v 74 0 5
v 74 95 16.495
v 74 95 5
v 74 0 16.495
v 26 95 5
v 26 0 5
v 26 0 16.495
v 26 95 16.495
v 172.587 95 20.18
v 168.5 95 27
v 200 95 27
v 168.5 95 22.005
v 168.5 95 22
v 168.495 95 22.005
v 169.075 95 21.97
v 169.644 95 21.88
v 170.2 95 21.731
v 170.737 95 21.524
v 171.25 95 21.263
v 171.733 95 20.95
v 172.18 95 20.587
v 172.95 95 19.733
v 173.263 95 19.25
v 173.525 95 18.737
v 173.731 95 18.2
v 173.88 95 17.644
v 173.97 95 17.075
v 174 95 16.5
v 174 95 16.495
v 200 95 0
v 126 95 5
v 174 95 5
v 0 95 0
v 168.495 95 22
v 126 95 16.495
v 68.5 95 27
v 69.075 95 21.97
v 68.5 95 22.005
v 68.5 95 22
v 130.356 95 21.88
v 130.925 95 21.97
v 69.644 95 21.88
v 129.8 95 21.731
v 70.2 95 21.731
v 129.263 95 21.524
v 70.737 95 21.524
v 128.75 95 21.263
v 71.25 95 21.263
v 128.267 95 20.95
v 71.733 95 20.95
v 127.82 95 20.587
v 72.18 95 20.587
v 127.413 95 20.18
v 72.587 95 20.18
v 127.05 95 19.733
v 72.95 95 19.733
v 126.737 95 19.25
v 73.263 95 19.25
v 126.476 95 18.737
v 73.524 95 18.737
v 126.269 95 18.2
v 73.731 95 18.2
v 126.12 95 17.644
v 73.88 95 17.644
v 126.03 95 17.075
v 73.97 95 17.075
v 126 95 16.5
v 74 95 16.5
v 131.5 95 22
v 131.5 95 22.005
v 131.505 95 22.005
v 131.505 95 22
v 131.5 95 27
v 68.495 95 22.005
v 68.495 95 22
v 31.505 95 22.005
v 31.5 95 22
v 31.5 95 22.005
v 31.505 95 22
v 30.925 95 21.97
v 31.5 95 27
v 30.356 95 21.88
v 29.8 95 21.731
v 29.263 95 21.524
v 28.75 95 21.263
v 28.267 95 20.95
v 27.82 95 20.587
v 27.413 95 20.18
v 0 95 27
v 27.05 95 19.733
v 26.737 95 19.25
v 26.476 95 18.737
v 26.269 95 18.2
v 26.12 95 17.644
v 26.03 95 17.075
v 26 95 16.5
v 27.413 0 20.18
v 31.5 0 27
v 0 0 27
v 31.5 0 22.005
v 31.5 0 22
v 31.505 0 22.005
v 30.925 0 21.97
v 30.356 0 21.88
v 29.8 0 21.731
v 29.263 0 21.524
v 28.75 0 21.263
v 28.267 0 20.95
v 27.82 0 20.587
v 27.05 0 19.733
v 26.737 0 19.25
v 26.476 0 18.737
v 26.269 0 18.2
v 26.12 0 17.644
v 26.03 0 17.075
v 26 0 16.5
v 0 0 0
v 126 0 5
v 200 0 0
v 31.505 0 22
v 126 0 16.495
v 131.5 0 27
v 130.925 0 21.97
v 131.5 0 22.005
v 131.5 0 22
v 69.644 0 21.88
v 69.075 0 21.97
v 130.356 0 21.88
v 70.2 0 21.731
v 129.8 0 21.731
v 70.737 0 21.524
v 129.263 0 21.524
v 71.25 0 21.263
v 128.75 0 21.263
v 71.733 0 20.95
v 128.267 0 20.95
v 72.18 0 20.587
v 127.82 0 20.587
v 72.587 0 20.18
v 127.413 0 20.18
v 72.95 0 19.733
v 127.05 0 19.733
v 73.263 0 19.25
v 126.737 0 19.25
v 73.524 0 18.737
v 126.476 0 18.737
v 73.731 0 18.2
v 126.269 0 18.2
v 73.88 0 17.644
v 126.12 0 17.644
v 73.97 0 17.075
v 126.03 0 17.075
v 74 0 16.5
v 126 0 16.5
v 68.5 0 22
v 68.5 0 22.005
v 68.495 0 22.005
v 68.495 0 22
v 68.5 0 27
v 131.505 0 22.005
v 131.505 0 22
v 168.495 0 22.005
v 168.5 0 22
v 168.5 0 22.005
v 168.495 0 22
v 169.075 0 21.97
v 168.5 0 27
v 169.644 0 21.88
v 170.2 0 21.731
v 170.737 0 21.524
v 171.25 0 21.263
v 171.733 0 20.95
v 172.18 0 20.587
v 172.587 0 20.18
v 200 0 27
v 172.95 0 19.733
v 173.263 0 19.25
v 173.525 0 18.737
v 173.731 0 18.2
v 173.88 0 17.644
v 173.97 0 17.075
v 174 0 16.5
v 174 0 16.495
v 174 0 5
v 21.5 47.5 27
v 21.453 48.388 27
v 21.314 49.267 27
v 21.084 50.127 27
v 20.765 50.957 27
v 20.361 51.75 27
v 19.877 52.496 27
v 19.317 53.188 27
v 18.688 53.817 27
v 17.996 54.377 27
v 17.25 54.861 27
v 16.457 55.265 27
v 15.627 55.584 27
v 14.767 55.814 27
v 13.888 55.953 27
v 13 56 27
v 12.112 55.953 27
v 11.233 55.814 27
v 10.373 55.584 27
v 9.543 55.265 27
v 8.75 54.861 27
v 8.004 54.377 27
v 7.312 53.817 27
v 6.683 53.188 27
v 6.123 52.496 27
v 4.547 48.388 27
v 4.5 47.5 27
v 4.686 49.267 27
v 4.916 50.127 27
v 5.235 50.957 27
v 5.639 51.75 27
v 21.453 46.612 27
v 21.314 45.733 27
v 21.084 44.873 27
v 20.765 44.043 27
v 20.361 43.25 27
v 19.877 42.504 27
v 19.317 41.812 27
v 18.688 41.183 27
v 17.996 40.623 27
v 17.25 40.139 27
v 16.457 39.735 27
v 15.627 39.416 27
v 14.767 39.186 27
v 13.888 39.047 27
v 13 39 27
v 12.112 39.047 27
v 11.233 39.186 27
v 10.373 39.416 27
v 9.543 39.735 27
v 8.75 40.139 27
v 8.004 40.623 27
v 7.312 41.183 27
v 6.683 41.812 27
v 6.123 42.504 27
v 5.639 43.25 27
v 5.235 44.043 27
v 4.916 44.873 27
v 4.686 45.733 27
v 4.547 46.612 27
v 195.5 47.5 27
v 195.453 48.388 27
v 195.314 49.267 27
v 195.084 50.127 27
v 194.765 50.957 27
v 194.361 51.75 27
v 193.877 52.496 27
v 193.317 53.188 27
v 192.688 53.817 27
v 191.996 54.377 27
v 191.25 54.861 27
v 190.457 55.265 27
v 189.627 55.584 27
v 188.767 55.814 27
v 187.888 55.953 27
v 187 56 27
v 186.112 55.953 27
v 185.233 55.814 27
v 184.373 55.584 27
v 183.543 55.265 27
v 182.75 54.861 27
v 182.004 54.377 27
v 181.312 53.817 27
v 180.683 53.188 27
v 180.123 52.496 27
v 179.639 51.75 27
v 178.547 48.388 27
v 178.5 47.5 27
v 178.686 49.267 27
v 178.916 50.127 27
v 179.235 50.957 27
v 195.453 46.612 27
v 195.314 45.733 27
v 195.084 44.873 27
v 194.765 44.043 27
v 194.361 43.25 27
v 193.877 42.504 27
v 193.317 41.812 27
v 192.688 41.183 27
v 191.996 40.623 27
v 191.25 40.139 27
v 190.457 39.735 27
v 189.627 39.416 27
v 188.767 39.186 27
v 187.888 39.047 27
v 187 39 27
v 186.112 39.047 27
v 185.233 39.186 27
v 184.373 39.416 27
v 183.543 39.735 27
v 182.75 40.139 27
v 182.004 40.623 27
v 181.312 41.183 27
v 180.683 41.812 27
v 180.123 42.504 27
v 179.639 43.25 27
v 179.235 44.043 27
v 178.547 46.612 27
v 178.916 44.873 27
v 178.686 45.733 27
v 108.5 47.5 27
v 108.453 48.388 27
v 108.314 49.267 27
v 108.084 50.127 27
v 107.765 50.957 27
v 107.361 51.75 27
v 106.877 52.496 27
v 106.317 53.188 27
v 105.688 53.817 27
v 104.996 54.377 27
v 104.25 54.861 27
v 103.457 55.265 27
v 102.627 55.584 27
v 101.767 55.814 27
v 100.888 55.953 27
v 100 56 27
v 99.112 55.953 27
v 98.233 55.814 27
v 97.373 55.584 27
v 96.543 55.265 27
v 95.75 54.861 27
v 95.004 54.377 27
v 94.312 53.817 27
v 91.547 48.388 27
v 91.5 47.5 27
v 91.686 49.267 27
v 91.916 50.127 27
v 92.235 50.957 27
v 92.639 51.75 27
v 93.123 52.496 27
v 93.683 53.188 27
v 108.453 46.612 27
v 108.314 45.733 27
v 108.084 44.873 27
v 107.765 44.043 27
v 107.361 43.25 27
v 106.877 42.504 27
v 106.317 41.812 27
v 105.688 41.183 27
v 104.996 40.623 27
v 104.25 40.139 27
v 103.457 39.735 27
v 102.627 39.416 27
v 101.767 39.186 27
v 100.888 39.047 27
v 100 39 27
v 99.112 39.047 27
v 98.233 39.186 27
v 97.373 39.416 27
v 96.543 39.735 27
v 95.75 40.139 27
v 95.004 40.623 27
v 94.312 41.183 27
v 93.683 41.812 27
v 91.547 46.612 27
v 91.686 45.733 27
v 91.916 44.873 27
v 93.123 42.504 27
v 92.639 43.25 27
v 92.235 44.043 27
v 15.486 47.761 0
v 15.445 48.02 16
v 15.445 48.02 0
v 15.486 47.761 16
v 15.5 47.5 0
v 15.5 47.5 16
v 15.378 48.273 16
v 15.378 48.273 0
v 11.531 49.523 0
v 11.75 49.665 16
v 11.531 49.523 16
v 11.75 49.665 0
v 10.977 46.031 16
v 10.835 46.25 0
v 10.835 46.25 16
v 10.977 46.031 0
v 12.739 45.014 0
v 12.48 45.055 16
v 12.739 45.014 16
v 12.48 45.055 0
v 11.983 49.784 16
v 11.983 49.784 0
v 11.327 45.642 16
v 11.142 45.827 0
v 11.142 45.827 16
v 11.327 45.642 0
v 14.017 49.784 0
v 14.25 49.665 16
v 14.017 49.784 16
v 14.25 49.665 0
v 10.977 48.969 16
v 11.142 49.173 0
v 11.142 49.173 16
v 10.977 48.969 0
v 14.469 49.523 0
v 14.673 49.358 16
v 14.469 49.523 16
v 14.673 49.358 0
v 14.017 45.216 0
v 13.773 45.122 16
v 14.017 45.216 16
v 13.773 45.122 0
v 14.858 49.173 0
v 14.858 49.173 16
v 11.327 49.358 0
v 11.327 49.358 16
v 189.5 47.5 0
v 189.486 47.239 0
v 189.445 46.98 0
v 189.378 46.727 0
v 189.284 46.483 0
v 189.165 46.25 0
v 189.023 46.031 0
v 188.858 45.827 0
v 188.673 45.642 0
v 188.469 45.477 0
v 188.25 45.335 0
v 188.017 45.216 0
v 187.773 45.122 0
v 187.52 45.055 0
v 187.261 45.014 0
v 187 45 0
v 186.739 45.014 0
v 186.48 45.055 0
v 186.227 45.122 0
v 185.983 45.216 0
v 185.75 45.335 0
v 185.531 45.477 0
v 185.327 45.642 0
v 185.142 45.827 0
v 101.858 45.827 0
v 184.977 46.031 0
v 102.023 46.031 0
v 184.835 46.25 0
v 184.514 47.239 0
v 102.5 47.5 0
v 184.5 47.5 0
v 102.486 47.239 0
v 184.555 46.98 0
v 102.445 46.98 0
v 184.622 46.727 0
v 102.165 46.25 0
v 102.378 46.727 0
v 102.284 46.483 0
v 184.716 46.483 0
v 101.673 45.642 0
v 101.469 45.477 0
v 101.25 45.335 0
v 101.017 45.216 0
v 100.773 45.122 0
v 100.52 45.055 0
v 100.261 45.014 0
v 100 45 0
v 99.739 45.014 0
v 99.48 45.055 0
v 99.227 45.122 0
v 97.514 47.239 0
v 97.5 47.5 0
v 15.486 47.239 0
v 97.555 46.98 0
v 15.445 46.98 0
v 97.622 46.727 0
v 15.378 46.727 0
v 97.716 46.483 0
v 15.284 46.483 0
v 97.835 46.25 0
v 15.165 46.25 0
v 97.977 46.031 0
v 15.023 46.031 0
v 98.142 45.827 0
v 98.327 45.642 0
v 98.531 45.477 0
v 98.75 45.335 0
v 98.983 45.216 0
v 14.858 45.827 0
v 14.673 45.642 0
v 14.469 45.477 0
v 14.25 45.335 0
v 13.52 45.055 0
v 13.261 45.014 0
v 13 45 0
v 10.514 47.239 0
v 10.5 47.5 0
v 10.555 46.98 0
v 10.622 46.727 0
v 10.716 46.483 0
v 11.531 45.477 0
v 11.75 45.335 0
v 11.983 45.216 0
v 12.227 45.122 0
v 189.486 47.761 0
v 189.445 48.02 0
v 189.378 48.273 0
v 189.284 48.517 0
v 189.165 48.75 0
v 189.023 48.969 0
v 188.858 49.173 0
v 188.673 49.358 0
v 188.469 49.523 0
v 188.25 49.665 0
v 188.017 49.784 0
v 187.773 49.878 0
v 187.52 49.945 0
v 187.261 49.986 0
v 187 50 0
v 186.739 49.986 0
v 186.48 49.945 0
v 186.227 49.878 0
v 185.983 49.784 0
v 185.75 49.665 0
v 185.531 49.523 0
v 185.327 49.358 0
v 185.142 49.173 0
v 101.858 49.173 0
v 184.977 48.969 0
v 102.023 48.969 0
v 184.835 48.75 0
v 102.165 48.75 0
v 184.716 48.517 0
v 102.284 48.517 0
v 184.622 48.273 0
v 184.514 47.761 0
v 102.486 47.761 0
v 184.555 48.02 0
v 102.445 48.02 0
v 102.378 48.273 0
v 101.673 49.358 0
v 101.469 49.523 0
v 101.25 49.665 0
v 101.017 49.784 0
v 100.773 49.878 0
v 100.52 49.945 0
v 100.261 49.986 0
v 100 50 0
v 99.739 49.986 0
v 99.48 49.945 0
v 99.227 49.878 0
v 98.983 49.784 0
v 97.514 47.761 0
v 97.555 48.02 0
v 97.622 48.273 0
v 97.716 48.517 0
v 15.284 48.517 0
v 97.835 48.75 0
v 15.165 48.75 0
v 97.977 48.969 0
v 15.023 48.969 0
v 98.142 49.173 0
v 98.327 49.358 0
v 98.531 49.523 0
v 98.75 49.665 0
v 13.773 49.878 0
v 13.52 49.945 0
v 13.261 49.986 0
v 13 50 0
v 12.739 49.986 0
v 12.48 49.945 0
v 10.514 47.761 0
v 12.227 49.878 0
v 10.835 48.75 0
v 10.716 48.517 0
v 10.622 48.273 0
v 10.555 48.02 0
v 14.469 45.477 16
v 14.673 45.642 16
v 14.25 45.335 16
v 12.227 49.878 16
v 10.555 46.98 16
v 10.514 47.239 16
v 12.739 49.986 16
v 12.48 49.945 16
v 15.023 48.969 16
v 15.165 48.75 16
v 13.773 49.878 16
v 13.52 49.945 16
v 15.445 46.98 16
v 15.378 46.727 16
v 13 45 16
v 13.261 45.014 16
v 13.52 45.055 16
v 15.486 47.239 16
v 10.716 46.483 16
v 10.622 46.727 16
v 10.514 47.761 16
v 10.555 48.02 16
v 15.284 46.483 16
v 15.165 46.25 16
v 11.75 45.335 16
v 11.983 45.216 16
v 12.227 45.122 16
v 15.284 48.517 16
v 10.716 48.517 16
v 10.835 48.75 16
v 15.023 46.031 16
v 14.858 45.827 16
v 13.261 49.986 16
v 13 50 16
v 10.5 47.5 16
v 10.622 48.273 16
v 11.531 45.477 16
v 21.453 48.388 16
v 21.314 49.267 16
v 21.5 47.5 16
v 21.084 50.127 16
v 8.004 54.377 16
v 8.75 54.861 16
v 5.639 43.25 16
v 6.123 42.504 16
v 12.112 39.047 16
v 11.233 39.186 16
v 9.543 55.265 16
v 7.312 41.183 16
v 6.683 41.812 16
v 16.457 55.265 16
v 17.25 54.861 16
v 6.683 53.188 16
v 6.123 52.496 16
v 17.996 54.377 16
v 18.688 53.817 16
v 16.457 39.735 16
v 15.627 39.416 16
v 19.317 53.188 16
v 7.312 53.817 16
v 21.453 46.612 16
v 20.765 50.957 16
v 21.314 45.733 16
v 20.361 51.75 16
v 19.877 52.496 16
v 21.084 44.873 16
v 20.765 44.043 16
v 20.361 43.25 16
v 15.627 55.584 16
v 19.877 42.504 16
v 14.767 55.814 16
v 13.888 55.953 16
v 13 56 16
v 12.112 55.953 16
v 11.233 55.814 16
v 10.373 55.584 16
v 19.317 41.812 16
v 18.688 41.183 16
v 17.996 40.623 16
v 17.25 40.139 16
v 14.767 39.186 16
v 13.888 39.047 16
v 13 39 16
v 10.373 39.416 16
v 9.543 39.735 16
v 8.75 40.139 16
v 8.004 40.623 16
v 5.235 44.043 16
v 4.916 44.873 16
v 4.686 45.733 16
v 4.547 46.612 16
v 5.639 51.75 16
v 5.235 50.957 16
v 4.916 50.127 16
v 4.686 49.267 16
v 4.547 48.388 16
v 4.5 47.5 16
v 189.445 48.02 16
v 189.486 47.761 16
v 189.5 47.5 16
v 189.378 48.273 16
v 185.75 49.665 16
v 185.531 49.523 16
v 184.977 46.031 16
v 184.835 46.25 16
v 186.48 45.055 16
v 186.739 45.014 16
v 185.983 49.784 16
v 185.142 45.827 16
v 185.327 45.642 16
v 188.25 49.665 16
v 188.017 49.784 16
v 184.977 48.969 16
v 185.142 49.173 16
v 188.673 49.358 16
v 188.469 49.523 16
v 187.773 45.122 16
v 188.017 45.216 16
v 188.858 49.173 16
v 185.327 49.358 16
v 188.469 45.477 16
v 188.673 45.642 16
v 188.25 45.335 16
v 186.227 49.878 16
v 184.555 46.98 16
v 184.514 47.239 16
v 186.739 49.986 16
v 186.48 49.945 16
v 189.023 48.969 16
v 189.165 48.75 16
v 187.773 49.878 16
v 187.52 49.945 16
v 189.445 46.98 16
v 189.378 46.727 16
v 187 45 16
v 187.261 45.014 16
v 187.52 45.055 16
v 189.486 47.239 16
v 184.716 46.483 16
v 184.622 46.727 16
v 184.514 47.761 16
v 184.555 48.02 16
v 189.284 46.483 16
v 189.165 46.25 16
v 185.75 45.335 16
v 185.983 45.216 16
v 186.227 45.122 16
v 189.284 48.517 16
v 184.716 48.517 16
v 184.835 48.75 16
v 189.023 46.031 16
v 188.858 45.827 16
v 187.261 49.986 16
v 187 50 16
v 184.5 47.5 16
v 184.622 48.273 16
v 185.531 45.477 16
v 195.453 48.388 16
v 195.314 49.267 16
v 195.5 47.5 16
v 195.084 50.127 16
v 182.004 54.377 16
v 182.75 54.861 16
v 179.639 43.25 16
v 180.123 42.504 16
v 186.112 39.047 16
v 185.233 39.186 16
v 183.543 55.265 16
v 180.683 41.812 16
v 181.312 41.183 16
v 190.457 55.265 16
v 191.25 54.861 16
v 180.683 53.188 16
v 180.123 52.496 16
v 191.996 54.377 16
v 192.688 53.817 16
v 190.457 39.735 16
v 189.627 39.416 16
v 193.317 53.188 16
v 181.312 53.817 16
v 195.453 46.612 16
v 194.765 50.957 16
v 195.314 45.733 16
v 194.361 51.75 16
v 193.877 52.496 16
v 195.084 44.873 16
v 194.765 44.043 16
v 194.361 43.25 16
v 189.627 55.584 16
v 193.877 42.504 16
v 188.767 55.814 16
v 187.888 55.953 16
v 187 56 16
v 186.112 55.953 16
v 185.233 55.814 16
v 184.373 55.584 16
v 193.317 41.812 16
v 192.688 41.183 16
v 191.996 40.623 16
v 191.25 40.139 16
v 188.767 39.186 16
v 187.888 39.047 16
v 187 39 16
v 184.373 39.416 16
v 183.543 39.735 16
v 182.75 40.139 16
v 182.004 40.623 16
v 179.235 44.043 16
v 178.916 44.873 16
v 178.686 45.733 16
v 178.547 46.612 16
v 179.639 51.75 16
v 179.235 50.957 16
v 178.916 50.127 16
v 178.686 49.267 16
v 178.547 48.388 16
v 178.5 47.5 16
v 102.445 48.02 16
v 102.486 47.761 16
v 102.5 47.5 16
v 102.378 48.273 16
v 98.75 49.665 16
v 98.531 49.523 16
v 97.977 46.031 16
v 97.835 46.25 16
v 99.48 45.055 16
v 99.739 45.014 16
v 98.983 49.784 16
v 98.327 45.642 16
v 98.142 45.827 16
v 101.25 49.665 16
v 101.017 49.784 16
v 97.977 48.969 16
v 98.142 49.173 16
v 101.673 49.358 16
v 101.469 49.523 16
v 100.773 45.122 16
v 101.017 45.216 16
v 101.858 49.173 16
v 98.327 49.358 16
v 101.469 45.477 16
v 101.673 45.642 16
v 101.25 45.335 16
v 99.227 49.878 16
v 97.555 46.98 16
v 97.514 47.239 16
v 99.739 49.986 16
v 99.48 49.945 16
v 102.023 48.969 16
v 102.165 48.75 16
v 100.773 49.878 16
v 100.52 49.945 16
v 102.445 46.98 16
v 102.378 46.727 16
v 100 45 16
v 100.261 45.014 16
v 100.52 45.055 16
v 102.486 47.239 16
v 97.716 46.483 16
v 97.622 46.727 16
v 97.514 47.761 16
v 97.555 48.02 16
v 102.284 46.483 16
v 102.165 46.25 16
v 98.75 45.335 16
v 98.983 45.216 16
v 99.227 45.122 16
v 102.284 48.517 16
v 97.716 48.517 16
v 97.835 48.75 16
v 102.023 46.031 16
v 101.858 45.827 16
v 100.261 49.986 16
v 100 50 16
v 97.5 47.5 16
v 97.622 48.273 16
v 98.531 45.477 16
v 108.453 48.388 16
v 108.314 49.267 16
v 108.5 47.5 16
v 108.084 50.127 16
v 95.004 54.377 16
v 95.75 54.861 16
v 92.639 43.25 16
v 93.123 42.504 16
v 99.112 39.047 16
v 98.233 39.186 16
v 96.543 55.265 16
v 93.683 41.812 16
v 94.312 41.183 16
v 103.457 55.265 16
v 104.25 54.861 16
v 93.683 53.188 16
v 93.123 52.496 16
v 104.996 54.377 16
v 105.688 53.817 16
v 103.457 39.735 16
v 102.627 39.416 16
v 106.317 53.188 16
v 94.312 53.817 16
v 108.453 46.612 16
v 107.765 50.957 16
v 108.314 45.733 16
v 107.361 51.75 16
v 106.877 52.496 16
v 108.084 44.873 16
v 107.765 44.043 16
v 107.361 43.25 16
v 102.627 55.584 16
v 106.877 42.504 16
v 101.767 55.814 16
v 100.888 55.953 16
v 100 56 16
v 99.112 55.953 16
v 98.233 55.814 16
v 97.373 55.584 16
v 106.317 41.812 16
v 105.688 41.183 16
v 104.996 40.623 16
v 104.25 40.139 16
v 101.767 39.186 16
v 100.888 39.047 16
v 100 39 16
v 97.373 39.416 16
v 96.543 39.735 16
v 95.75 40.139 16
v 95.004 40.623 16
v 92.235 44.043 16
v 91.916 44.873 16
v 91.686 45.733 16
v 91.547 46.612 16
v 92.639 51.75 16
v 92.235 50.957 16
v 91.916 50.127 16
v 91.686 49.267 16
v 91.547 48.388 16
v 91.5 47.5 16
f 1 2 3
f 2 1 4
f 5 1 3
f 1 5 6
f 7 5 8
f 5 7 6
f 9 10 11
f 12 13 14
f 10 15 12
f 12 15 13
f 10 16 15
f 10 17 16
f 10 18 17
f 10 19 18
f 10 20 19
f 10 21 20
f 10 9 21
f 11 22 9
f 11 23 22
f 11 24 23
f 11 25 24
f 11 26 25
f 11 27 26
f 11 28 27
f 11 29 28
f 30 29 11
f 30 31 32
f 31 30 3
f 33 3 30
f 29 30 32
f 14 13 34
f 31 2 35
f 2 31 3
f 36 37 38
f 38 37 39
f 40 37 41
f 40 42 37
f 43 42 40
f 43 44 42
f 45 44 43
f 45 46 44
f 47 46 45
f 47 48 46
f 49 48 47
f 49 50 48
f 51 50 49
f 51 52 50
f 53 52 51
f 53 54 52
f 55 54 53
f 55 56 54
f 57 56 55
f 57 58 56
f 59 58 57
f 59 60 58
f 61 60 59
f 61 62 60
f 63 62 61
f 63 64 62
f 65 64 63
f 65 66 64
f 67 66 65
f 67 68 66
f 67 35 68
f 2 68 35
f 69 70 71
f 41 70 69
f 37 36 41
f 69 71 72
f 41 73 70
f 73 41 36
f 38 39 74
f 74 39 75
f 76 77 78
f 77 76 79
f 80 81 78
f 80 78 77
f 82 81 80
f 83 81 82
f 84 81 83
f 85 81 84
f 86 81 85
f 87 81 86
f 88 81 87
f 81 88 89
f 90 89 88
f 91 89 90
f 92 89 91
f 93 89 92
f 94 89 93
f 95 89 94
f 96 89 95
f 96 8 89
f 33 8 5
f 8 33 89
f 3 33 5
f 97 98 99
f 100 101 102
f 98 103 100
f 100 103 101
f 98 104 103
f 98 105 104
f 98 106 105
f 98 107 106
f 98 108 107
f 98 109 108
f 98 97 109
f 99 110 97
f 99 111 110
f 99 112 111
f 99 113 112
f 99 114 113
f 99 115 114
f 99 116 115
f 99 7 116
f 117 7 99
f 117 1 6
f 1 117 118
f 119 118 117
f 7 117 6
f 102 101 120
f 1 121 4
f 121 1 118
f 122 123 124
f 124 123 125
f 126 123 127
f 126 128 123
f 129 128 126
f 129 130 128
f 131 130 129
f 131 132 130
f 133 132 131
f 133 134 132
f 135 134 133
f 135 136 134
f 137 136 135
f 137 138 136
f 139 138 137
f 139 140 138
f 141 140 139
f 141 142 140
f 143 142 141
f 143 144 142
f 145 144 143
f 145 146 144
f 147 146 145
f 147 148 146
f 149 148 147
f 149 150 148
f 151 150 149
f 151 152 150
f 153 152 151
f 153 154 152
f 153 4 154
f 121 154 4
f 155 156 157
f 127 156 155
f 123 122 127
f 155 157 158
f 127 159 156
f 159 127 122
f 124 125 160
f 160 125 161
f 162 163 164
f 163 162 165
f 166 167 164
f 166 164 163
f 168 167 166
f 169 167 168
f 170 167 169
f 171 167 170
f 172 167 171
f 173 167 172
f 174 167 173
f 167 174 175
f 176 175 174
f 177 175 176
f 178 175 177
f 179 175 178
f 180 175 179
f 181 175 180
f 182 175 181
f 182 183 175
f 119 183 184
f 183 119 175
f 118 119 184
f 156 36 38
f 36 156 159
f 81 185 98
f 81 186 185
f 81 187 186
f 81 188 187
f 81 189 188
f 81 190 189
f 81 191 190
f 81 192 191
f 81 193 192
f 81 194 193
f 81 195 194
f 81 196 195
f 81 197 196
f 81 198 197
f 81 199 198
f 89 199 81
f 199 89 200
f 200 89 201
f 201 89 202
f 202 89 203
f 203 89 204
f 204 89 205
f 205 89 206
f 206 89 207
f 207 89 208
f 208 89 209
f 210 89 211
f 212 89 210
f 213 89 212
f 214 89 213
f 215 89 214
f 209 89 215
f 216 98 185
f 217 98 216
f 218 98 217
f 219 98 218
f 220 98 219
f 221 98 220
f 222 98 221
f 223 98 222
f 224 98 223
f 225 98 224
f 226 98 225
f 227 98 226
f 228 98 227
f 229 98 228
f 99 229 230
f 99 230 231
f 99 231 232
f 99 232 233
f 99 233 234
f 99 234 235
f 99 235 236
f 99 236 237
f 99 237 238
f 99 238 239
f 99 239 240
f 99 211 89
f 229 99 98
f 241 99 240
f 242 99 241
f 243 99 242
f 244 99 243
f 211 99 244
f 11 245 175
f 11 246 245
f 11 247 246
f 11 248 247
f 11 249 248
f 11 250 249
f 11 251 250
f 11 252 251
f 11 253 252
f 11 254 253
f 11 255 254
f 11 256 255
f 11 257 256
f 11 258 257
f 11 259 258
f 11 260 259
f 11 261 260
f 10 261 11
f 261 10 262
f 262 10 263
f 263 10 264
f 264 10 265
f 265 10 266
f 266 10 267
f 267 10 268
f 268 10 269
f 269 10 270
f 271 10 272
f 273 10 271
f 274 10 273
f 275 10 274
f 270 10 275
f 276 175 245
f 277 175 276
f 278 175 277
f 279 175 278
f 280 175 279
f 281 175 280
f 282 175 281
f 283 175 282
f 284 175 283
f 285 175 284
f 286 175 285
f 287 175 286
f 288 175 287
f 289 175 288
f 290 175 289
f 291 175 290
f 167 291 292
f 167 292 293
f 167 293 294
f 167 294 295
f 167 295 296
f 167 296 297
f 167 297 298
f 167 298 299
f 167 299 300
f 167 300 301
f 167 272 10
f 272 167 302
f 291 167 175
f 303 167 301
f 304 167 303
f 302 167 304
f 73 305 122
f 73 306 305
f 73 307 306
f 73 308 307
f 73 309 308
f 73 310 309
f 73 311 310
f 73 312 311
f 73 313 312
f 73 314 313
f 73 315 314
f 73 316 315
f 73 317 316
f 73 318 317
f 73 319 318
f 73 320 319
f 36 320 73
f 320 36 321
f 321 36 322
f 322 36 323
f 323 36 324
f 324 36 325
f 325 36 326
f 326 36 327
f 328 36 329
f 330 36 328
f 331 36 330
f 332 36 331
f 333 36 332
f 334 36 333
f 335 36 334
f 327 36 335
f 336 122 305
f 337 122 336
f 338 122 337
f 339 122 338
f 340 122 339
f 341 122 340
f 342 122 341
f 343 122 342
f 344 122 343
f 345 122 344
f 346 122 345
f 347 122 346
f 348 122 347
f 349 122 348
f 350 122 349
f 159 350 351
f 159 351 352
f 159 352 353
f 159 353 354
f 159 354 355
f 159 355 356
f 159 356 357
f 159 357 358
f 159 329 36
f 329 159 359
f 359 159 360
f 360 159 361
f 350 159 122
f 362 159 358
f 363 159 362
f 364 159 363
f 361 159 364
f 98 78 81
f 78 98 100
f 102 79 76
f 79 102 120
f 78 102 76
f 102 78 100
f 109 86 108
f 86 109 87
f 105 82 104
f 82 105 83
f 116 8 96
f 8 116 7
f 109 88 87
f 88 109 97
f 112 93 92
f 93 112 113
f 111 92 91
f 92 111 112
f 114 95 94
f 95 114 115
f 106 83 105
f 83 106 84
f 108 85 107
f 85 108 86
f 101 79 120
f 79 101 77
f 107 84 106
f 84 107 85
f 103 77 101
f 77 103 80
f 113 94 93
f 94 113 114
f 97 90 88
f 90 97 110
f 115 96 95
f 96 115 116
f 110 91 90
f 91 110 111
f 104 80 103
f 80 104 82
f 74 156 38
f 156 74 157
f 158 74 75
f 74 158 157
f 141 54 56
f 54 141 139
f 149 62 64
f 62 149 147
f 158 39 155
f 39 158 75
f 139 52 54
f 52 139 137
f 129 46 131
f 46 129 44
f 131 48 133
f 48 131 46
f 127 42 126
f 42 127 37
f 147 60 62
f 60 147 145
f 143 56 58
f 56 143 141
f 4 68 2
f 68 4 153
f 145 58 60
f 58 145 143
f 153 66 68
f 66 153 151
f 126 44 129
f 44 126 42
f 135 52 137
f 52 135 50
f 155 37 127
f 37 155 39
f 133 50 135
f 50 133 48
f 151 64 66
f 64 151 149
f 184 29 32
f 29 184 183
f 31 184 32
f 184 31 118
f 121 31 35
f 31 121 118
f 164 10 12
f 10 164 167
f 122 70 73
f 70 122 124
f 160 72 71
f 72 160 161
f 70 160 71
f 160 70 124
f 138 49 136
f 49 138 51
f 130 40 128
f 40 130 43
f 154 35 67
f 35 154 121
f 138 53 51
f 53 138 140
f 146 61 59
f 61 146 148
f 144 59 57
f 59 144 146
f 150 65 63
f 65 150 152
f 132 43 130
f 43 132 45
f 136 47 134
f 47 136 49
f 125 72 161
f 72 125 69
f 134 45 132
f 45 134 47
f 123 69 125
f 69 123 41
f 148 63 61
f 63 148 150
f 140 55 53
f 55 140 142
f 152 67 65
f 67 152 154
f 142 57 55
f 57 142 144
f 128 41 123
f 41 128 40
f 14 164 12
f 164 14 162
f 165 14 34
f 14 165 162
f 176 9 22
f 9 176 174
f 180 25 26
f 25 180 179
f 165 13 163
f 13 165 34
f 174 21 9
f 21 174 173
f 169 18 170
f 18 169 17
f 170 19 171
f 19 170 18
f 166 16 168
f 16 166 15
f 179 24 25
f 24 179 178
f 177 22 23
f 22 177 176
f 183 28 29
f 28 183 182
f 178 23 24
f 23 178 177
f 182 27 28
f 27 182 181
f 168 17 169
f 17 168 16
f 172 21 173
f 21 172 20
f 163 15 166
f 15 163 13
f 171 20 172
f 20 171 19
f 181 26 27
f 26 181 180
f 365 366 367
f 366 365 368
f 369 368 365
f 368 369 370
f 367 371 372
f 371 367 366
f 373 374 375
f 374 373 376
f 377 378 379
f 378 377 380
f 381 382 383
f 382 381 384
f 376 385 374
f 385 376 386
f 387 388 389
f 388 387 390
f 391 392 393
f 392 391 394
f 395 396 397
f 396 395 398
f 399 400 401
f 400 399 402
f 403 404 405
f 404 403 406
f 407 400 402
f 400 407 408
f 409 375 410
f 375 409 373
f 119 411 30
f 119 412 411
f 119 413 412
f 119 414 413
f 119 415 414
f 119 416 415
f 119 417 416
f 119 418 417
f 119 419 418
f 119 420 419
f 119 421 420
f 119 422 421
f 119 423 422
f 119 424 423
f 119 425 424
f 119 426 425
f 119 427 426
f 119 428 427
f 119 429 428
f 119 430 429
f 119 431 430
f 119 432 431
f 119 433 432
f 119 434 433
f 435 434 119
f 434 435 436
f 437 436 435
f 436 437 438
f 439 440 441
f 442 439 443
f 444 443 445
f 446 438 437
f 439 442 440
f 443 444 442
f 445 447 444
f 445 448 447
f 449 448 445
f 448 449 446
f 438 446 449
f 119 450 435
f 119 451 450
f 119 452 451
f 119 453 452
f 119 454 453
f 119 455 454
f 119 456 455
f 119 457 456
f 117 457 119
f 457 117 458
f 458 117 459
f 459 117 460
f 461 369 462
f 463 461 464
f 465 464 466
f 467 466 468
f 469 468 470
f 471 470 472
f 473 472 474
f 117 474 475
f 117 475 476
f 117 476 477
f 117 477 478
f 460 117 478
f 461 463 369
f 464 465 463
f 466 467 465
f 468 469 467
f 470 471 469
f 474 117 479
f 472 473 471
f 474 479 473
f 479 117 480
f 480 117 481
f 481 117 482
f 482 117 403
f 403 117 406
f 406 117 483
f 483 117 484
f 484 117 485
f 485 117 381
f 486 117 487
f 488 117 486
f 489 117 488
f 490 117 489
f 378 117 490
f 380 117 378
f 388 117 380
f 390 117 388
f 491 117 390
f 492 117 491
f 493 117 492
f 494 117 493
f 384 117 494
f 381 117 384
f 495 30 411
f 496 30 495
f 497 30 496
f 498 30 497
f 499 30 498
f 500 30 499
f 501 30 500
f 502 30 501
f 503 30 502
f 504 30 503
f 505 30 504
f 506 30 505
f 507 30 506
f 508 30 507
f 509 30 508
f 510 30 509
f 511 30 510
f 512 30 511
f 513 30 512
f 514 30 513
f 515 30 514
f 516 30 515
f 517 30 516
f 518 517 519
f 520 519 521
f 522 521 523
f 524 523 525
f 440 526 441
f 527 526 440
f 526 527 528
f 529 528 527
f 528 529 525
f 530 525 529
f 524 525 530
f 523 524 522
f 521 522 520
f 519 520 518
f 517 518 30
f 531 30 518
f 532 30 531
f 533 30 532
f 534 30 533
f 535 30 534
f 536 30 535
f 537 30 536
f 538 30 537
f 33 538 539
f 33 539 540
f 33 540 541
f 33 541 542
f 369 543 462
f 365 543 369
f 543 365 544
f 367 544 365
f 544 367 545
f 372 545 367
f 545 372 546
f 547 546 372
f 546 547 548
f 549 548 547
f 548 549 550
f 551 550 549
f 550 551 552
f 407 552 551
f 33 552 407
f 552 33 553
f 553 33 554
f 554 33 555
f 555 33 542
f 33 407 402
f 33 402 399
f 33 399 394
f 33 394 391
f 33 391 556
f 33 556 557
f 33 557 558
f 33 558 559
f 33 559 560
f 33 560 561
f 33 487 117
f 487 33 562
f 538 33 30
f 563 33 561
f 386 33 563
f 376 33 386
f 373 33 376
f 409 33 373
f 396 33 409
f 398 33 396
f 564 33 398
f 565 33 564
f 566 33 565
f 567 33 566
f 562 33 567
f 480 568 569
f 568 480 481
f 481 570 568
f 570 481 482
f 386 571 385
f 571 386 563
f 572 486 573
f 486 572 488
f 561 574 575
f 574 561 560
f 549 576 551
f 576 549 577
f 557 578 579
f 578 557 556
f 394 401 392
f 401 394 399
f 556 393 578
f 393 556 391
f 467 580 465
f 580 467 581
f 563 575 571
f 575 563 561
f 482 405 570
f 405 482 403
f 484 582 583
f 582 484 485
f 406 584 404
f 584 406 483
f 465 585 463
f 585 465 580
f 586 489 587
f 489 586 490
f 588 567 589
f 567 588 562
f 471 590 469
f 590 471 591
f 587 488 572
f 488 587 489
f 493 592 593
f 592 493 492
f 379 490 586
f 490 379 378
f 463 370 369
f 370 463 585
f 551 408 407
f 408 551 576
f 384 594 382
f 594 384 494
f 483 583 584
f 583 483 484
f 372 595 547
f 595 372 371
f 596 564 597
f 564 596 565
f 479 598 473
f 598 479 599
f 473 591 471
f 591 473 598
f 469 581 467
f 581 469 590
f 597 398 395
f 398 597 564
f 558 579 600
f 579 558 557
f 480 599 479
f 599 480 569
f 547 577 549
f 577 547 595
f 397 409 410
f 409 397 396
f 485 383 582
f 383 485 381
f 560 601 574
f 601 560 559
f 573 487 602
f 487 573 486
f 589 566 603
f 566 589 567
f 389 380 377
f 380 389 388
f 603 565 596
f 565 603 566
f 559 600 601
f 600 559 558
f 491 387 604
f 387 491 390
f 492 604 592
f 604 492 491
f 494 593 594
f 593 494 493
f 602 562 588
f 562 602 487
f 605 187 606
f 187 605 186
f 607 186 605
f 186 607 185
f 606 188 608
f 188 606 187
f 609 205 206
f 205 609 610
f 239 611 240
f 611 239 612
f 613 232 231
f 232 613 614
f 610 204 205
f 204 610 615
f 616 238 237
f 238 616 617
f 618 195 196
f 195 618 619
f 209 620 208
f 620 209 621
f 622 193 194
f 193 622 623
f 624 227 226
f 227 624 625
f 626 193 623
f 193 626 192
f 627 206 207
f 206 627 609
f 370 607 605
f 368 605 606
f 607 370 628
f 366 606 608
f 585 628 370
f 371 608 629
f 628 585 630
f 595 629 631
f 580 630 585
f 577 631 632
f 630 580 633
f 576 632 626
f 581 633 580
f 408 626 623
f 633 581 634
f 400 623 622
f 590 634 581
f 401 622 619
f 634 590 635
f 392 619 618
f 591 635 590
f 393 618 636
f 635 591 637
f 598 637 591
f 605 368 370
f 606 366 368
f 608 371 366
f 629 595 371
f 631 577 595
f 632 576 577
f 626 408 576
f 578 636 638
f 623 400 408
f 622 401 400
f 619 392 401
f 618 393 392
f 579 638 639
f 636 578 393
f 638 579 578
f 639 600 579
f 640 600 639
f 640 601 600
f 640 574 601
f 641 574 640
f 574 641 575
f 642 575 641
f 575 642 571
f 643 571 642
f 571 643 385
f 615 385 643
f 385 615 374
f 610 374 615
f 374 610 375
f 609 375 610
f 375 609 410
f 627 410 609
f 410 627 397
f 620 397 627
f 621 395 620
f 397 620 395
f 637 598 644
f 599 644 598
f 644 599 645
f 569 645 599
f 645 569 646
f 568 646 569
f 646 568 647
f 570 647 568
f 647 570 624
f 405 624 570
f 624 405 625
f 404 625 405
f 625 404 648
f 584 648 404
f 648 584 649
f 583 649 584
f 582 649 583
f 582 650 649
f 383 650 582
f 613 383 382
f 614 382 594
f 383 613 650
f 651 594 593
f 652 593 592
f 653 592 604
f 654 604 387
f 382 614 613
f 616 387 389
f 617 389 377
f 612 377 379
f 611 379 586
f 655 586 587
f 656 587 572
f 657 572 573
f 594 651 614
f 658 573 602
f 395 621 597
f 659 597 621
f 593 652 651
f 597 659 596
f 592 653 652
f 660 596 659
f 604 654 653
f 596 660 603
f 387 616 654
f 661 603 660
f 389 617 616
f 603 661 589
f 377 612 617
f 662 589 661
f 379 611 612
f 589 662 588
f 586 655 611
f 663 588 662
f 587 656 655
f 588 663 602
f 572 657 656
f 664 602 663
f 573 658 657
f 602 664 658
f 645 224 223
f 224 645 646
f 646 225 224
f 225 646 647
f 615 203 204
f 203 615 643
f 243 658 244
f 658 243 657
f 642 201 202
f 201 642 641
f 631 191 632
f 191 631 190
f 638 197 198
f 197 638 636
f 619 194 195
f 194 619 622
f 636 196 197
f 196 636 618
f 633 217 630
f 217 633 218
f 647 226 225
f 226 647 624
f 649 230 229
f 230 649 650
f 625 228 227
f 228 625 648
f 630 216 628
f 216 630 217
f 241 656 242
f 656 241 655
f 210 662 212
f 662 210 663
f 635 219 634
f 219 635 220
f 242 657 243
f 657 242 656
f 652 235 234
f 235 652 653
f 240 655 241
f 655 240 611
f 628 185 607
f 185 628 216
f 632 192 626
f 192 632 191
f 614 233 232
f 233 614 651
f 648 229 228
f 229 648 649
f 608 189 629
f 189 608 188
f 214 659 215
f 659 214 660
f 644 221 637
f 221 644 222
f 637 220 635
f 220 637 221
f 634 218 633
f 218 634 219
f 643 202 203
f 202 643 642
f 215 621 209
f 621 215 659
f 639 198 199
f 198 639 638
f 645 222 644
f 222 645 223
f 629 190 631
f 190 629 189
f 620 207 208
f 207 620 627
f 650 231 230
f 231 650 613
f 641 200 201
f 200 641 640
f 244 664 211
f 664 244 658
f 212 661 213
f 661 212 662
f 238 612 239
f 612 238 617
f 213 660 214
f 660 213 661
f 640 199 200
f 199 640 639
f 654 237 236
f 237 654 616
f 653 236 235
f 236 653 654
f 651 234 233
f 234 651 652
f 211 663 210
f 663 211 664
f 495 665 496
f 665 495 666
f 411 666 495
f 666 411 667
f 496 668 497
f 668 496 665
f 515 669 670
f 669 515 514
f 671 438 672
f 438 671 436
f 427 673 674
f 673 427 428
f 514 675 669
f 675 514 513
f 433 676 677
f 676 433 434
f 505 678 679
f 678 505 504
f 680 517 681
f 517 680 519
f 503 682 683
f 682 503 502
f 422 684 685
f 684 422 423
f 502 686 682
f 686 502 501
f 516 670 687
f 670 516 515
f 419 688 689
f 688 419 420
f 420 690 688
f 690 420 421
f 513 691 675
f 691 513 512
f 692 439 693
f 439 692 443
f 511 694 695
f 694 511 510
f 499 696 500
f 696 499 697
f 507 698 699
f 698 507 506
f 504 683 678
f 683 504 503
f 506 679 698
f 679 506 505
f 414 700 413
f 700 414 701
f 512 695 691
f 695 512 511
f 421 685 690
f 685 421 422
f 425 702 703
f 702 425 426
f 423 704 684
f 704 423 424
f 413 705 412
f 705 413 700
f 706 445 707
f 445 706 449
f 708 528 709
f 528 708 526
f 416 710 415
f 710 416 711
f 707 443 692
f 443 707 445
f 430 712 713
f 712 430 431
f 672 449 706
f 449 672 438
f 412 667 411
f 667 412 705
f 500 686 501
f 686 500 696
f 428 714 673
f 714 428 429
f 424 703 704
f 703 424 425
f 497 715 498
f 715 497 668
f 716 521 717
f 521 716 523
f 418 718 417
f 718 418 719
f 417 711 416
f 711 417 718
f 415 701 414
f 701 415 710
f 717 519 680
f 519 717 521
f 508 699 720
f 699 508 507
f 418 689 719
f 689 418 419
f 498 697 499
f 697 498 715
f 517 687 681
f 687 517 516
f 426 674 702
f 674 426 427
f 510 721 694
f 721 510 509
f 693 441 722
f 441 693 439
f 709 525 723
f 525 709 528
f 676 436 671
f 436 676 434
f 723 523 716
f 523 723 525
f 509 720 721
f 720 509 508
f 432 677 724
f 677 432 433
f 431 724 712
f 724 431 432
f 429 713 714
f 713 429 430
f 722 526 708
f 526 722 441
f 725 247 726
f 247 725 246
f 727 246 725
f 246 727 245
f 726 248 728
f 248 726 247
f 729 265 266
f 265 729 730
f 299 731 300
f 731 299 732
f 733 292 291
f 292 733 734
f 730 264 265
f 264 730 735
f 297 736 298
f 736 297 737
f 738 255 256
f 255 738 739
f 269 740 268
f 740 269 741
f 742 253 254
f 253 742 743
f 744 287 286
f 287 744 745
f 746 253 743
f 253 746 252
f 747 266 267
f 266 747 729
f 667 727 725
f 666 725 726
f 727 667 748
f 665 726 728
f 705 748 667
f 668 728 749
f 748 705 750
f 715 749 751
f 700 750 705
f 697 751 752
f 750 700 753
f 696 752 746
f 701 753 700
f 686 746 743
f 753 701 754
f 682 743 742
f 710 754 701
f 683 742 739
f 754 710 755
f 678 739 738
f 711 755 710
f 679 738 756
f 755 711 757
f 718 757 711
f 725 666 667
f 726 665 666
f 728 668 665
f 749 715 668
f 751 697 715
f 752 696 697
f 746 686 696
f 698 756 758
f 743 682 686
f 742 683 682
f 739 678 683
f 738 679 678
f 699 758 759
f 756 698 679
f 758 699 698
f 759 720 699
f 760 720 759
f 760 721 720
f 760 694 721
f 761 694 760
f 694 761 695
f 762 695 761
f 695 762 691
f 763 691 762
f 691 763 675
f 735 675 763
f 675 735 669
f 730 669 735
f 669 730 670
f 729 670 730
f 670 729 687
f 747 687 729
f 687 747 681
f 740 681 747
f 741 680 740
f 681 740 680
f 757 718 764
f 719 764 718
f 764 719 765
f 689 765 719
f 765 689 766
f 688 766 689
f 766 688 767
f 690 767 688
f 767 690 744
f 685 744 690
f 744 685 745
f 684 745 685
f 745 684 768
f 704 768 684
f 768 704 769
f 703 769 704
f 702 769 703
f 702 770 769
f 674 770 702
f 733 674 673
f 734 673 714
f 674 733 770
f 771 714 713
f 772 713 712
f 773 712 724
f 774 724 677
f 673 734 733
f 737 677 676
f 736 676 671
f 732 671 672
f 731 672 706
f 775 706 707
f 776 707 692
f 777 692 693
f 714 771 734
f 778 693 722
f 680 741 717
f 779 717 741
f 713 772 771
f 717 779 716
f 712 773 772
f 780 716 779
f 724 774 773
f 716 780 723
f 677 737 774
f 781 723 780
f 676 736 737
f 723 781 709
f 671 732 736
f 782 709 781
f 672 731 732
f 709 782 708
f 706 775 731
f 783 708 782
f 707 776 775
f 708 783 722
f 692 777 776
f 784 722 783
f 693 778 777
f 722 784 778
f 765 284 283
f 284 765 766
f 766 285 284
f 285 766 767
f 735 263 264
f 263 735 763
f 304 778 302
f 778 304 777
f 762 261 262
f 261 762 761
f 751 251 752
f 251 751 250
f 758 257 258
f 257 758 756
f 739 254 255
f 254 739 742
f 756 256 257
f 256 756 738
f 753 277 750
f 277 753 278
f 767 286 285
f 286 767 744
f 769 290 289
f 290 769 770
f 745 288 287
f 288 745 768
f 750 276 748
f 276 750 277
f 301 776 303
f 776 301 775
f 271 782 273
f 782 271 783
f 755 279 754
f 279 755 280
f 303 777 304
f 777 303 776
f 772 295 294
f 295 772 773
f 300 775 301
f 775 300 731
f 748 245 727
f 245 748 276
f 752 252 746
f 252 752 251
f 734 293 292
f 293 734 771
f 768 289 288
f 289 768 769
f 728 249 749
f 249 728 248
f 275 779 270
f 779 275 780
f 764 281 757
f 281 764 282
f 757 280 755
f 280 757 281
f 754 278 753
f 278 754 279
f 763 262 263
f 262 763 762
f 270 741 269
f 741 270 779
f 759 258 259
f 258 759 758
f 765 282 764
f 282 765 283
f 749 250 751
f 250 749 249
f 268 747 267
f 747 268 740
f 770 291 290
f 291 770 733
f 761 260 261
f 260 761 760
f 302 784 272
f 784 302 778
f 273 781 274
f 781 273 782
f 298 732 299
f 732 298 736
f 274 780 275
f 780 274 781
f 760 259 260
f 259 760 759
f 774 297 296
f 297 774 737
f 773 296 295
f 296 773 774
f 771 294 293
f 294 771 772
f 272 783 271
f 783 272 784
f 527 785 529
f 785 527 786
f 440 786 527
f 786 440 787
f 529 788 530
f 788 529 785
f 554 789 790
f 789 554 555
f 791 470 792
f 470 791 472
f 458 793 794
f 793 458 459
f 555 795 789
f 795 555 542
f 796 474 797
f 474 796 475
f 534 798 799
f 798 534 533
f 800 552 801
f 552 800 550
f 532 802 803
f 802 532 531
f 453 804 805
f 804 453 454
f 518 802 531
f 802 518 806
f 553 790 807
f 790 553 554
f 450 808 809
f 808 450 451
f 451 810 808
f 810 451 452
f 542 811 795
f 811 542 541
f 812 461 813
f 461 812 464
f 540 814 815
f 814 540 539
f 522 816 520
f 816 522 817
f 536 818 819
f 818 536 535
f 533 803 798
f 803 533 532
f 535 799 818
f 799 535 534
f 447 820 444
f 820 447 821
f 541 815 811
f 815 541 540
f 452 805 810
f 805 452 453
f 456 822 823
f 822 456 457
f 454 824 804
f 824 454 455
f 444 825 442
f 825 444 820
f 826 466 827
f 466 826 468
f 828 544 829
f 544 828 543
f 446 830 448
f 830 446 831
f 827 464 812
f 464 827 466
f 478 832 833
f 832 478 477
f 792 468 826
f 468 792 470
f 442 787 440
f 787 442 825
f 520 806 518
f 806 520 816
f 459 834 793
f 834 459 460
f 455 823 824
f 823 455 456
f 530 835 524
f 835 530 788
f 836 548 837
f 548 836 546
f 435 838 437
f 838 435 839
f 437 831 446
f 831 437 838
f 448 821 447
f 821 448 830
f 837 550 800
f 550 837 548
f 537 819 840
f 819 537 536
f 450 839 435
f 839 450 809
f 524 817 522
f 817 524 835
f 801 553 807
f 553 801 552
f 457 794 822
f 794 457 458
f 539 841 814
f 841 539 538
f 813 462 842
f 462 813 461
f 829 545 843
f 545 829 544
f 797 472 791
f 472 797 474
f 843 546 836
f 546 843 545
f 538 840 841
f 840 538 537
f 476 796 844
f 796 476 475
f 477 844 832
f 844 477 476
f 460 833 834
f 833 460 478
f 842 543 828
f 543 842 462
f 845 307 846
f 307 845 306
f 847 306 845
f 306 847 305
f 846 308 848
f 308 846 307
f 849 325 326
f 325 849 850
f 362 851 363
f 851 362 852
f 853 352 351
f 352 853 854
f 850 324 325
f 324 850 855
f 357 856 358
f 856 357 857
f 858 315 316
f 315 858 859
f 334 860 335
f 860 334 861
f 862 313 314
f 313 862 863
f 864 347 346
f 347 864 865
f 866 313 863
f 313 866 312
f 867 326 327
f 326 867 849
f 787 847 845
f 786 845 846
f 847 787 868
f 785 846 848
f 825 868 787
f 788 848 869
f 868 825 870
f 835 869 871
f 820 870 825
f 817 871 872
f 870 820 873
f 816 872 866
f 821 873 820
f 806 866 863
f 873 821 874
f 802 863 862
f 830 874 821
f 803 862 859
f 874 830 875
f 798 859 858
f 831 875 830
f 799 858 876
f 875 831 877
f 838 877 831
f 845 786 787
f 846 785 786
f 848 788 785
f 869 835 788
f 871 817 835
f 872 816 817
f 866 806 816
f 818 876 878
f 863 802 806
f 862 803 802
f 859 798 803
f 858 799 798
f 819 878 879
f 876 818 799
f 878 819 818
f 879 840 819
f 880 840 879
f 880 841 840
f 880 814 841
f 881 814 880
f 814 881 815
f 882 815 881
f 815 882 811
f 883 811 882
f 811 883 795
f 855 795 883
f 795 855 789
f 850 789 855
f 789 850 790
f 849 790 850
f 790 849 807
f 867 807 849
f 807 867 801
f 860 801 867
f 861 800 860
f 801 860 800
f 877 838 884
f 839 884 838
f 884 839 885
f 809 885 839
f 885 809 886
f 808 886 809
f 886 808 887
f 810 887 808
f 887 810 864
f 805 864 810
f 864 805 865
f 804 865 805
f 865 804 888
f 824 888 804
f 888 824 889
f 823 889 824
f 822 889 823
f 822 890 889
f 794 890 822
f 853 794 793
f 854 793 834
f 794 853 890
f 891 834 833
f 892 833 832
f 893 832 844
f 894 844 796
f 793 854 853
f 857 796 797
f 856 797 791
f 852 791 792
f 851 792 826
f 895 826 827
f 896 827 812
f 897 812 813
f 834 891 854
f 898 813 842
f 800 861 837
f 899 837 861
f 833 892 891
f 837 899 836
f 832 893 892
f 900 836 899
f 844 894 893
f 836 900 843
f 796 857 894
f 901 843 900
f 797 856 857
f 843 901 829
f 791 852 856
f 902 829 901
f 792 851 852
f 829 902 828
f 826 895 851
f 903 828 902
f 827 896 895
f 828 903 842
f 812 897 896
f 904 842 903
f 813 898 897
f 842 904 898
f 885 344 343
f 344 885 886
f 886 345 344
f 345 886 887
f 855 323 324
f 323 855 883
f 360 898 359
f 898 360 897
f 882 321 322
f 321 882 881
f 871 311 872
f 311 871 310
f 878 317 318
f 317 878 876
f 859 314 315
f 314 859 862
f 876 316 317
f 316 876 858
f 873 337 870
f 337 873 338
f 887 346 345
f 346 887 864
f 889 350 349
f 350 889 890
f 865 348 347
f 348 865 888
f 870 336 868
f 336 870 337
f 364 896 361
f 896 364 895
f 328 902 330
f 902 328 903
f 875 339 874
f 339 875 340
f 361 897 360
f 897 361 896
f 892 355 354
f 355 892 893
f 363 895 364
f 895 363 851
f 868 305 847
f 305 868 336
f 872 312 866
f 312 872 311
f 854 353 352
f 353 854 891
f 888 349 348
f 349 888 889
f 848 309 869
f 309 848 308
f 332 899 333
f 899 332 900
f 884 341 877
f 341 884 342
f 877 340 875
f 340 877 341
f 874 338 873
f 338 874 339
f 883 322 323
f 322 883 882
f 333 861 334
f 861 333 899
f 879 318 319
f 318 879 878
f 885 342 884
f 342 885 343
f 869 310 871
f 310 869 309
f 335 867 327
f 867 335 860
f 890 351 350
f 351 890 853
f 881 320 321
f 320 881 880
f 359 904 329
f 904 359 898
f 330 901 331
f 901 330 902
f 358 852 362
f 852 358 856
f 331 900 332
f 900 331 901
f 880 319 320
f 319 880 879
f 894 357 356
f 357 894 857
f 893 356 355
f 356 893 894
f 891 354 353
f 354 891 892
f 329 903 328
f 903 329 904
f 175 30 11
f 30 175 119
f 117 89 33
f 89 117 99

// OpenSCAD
// under_shelf_glass_holder
// Creative commons licence copyright 2025 Jim Dodgen
$fn=60;
holder_width = 200;
holder_depth = 95;//100;
holder_base_thickness =5;
// 4mm screw_hole using #8 1.25 inch (31mm) screws 
// into ~3/4 inch (~20mm) oak shelf 
screw_hole_d= 5;
screw_lth = 31;
max_penatration_into_shelf = 15;
screw_head_clearance = 17; 

screw_hole_recess = screw_lth - max_penatration_into_shelf;

glass_width = 80;
cutout_width = 48;
cutout_thickness = 17;
cutout_lip_width = 37;
cutout_lip_thickness = 5;

raw_slots = (holder_width/glass_width);
slots = floor(raw_slots);
remainder =  (raw_slots - slots)*glass_width;
spacing = holder_width/slots;
echo("slots", slots, "spacing", spacing, "remainder", remainder);

holder_thickness = cutout_thickness+cutout_lip_thickness+holder_base_thickness;
holder();
module holder()
{
    indent = (spacing-cutout_width)/2;
    difference()
    {
        cube([holder_width,holder_depth, holder_thickness]);
        translate([indent,0,0])
        for(i = [0:slots])
        {
            translate([(i*spacing), 0, holder_base_thickness])
            { 
                cut_out();
            }
            
        }
        translate([(indent/2),(holder_depth/2),0])
            drill_screw_hole();
        translate([holder_width-(indent/2),holder_depth/2,0])
            drill_screw_hole(); 
        translate([(holder_width/2),holder_depth/2,0])
            drill_screw_hole();
    }
    //cylinder(holder_thickness, d=6); 
}
//drill_screw_hole();
module drill_screw_hole()
{
    cylinder(holder_thickness, d=screw_hole_d);
    translate([0,0,screw_hole_recess])
        cylinder(holder_thickness-screw_hole_recess, d=screw_head_clearance); 

}

//cut_out();
module cut_out()
{
    lip_offset = (cutout_width-cutout_lip_width)/2;
    difference()
    {
        union()
        {
            cube([cutout_width, holder_depth, cutout_thickness]);
            
            translate([lip_offset,0,cutout_thickness])
                color("red") cube([cutout_lip_width, holder_depth, cutout_lip_thickness]);
        }         
        translate([0,0,cutout_thickness])
            rotate([-90,0,0])
            color("green")
            fillet(0, lip_offset, holder_depth);
        translate([cutout_width-lip_offset,0,cutout_thickness])
            rotate([-90,0,0])
            color("blue")
            fillet(90, lip_offset, holder_depth);
    }
}

module fillet(rot, r, h) {
    translate([r / 2, r / 2, h/2])
    rotate([0,0,rot]) difference() {
        cube([r + 0.01, r + 0.01, h], center = true);
        translate([r/2, r/2, 0])
            cylinder(r = r, h = h + 1, center = true);
    }
}
